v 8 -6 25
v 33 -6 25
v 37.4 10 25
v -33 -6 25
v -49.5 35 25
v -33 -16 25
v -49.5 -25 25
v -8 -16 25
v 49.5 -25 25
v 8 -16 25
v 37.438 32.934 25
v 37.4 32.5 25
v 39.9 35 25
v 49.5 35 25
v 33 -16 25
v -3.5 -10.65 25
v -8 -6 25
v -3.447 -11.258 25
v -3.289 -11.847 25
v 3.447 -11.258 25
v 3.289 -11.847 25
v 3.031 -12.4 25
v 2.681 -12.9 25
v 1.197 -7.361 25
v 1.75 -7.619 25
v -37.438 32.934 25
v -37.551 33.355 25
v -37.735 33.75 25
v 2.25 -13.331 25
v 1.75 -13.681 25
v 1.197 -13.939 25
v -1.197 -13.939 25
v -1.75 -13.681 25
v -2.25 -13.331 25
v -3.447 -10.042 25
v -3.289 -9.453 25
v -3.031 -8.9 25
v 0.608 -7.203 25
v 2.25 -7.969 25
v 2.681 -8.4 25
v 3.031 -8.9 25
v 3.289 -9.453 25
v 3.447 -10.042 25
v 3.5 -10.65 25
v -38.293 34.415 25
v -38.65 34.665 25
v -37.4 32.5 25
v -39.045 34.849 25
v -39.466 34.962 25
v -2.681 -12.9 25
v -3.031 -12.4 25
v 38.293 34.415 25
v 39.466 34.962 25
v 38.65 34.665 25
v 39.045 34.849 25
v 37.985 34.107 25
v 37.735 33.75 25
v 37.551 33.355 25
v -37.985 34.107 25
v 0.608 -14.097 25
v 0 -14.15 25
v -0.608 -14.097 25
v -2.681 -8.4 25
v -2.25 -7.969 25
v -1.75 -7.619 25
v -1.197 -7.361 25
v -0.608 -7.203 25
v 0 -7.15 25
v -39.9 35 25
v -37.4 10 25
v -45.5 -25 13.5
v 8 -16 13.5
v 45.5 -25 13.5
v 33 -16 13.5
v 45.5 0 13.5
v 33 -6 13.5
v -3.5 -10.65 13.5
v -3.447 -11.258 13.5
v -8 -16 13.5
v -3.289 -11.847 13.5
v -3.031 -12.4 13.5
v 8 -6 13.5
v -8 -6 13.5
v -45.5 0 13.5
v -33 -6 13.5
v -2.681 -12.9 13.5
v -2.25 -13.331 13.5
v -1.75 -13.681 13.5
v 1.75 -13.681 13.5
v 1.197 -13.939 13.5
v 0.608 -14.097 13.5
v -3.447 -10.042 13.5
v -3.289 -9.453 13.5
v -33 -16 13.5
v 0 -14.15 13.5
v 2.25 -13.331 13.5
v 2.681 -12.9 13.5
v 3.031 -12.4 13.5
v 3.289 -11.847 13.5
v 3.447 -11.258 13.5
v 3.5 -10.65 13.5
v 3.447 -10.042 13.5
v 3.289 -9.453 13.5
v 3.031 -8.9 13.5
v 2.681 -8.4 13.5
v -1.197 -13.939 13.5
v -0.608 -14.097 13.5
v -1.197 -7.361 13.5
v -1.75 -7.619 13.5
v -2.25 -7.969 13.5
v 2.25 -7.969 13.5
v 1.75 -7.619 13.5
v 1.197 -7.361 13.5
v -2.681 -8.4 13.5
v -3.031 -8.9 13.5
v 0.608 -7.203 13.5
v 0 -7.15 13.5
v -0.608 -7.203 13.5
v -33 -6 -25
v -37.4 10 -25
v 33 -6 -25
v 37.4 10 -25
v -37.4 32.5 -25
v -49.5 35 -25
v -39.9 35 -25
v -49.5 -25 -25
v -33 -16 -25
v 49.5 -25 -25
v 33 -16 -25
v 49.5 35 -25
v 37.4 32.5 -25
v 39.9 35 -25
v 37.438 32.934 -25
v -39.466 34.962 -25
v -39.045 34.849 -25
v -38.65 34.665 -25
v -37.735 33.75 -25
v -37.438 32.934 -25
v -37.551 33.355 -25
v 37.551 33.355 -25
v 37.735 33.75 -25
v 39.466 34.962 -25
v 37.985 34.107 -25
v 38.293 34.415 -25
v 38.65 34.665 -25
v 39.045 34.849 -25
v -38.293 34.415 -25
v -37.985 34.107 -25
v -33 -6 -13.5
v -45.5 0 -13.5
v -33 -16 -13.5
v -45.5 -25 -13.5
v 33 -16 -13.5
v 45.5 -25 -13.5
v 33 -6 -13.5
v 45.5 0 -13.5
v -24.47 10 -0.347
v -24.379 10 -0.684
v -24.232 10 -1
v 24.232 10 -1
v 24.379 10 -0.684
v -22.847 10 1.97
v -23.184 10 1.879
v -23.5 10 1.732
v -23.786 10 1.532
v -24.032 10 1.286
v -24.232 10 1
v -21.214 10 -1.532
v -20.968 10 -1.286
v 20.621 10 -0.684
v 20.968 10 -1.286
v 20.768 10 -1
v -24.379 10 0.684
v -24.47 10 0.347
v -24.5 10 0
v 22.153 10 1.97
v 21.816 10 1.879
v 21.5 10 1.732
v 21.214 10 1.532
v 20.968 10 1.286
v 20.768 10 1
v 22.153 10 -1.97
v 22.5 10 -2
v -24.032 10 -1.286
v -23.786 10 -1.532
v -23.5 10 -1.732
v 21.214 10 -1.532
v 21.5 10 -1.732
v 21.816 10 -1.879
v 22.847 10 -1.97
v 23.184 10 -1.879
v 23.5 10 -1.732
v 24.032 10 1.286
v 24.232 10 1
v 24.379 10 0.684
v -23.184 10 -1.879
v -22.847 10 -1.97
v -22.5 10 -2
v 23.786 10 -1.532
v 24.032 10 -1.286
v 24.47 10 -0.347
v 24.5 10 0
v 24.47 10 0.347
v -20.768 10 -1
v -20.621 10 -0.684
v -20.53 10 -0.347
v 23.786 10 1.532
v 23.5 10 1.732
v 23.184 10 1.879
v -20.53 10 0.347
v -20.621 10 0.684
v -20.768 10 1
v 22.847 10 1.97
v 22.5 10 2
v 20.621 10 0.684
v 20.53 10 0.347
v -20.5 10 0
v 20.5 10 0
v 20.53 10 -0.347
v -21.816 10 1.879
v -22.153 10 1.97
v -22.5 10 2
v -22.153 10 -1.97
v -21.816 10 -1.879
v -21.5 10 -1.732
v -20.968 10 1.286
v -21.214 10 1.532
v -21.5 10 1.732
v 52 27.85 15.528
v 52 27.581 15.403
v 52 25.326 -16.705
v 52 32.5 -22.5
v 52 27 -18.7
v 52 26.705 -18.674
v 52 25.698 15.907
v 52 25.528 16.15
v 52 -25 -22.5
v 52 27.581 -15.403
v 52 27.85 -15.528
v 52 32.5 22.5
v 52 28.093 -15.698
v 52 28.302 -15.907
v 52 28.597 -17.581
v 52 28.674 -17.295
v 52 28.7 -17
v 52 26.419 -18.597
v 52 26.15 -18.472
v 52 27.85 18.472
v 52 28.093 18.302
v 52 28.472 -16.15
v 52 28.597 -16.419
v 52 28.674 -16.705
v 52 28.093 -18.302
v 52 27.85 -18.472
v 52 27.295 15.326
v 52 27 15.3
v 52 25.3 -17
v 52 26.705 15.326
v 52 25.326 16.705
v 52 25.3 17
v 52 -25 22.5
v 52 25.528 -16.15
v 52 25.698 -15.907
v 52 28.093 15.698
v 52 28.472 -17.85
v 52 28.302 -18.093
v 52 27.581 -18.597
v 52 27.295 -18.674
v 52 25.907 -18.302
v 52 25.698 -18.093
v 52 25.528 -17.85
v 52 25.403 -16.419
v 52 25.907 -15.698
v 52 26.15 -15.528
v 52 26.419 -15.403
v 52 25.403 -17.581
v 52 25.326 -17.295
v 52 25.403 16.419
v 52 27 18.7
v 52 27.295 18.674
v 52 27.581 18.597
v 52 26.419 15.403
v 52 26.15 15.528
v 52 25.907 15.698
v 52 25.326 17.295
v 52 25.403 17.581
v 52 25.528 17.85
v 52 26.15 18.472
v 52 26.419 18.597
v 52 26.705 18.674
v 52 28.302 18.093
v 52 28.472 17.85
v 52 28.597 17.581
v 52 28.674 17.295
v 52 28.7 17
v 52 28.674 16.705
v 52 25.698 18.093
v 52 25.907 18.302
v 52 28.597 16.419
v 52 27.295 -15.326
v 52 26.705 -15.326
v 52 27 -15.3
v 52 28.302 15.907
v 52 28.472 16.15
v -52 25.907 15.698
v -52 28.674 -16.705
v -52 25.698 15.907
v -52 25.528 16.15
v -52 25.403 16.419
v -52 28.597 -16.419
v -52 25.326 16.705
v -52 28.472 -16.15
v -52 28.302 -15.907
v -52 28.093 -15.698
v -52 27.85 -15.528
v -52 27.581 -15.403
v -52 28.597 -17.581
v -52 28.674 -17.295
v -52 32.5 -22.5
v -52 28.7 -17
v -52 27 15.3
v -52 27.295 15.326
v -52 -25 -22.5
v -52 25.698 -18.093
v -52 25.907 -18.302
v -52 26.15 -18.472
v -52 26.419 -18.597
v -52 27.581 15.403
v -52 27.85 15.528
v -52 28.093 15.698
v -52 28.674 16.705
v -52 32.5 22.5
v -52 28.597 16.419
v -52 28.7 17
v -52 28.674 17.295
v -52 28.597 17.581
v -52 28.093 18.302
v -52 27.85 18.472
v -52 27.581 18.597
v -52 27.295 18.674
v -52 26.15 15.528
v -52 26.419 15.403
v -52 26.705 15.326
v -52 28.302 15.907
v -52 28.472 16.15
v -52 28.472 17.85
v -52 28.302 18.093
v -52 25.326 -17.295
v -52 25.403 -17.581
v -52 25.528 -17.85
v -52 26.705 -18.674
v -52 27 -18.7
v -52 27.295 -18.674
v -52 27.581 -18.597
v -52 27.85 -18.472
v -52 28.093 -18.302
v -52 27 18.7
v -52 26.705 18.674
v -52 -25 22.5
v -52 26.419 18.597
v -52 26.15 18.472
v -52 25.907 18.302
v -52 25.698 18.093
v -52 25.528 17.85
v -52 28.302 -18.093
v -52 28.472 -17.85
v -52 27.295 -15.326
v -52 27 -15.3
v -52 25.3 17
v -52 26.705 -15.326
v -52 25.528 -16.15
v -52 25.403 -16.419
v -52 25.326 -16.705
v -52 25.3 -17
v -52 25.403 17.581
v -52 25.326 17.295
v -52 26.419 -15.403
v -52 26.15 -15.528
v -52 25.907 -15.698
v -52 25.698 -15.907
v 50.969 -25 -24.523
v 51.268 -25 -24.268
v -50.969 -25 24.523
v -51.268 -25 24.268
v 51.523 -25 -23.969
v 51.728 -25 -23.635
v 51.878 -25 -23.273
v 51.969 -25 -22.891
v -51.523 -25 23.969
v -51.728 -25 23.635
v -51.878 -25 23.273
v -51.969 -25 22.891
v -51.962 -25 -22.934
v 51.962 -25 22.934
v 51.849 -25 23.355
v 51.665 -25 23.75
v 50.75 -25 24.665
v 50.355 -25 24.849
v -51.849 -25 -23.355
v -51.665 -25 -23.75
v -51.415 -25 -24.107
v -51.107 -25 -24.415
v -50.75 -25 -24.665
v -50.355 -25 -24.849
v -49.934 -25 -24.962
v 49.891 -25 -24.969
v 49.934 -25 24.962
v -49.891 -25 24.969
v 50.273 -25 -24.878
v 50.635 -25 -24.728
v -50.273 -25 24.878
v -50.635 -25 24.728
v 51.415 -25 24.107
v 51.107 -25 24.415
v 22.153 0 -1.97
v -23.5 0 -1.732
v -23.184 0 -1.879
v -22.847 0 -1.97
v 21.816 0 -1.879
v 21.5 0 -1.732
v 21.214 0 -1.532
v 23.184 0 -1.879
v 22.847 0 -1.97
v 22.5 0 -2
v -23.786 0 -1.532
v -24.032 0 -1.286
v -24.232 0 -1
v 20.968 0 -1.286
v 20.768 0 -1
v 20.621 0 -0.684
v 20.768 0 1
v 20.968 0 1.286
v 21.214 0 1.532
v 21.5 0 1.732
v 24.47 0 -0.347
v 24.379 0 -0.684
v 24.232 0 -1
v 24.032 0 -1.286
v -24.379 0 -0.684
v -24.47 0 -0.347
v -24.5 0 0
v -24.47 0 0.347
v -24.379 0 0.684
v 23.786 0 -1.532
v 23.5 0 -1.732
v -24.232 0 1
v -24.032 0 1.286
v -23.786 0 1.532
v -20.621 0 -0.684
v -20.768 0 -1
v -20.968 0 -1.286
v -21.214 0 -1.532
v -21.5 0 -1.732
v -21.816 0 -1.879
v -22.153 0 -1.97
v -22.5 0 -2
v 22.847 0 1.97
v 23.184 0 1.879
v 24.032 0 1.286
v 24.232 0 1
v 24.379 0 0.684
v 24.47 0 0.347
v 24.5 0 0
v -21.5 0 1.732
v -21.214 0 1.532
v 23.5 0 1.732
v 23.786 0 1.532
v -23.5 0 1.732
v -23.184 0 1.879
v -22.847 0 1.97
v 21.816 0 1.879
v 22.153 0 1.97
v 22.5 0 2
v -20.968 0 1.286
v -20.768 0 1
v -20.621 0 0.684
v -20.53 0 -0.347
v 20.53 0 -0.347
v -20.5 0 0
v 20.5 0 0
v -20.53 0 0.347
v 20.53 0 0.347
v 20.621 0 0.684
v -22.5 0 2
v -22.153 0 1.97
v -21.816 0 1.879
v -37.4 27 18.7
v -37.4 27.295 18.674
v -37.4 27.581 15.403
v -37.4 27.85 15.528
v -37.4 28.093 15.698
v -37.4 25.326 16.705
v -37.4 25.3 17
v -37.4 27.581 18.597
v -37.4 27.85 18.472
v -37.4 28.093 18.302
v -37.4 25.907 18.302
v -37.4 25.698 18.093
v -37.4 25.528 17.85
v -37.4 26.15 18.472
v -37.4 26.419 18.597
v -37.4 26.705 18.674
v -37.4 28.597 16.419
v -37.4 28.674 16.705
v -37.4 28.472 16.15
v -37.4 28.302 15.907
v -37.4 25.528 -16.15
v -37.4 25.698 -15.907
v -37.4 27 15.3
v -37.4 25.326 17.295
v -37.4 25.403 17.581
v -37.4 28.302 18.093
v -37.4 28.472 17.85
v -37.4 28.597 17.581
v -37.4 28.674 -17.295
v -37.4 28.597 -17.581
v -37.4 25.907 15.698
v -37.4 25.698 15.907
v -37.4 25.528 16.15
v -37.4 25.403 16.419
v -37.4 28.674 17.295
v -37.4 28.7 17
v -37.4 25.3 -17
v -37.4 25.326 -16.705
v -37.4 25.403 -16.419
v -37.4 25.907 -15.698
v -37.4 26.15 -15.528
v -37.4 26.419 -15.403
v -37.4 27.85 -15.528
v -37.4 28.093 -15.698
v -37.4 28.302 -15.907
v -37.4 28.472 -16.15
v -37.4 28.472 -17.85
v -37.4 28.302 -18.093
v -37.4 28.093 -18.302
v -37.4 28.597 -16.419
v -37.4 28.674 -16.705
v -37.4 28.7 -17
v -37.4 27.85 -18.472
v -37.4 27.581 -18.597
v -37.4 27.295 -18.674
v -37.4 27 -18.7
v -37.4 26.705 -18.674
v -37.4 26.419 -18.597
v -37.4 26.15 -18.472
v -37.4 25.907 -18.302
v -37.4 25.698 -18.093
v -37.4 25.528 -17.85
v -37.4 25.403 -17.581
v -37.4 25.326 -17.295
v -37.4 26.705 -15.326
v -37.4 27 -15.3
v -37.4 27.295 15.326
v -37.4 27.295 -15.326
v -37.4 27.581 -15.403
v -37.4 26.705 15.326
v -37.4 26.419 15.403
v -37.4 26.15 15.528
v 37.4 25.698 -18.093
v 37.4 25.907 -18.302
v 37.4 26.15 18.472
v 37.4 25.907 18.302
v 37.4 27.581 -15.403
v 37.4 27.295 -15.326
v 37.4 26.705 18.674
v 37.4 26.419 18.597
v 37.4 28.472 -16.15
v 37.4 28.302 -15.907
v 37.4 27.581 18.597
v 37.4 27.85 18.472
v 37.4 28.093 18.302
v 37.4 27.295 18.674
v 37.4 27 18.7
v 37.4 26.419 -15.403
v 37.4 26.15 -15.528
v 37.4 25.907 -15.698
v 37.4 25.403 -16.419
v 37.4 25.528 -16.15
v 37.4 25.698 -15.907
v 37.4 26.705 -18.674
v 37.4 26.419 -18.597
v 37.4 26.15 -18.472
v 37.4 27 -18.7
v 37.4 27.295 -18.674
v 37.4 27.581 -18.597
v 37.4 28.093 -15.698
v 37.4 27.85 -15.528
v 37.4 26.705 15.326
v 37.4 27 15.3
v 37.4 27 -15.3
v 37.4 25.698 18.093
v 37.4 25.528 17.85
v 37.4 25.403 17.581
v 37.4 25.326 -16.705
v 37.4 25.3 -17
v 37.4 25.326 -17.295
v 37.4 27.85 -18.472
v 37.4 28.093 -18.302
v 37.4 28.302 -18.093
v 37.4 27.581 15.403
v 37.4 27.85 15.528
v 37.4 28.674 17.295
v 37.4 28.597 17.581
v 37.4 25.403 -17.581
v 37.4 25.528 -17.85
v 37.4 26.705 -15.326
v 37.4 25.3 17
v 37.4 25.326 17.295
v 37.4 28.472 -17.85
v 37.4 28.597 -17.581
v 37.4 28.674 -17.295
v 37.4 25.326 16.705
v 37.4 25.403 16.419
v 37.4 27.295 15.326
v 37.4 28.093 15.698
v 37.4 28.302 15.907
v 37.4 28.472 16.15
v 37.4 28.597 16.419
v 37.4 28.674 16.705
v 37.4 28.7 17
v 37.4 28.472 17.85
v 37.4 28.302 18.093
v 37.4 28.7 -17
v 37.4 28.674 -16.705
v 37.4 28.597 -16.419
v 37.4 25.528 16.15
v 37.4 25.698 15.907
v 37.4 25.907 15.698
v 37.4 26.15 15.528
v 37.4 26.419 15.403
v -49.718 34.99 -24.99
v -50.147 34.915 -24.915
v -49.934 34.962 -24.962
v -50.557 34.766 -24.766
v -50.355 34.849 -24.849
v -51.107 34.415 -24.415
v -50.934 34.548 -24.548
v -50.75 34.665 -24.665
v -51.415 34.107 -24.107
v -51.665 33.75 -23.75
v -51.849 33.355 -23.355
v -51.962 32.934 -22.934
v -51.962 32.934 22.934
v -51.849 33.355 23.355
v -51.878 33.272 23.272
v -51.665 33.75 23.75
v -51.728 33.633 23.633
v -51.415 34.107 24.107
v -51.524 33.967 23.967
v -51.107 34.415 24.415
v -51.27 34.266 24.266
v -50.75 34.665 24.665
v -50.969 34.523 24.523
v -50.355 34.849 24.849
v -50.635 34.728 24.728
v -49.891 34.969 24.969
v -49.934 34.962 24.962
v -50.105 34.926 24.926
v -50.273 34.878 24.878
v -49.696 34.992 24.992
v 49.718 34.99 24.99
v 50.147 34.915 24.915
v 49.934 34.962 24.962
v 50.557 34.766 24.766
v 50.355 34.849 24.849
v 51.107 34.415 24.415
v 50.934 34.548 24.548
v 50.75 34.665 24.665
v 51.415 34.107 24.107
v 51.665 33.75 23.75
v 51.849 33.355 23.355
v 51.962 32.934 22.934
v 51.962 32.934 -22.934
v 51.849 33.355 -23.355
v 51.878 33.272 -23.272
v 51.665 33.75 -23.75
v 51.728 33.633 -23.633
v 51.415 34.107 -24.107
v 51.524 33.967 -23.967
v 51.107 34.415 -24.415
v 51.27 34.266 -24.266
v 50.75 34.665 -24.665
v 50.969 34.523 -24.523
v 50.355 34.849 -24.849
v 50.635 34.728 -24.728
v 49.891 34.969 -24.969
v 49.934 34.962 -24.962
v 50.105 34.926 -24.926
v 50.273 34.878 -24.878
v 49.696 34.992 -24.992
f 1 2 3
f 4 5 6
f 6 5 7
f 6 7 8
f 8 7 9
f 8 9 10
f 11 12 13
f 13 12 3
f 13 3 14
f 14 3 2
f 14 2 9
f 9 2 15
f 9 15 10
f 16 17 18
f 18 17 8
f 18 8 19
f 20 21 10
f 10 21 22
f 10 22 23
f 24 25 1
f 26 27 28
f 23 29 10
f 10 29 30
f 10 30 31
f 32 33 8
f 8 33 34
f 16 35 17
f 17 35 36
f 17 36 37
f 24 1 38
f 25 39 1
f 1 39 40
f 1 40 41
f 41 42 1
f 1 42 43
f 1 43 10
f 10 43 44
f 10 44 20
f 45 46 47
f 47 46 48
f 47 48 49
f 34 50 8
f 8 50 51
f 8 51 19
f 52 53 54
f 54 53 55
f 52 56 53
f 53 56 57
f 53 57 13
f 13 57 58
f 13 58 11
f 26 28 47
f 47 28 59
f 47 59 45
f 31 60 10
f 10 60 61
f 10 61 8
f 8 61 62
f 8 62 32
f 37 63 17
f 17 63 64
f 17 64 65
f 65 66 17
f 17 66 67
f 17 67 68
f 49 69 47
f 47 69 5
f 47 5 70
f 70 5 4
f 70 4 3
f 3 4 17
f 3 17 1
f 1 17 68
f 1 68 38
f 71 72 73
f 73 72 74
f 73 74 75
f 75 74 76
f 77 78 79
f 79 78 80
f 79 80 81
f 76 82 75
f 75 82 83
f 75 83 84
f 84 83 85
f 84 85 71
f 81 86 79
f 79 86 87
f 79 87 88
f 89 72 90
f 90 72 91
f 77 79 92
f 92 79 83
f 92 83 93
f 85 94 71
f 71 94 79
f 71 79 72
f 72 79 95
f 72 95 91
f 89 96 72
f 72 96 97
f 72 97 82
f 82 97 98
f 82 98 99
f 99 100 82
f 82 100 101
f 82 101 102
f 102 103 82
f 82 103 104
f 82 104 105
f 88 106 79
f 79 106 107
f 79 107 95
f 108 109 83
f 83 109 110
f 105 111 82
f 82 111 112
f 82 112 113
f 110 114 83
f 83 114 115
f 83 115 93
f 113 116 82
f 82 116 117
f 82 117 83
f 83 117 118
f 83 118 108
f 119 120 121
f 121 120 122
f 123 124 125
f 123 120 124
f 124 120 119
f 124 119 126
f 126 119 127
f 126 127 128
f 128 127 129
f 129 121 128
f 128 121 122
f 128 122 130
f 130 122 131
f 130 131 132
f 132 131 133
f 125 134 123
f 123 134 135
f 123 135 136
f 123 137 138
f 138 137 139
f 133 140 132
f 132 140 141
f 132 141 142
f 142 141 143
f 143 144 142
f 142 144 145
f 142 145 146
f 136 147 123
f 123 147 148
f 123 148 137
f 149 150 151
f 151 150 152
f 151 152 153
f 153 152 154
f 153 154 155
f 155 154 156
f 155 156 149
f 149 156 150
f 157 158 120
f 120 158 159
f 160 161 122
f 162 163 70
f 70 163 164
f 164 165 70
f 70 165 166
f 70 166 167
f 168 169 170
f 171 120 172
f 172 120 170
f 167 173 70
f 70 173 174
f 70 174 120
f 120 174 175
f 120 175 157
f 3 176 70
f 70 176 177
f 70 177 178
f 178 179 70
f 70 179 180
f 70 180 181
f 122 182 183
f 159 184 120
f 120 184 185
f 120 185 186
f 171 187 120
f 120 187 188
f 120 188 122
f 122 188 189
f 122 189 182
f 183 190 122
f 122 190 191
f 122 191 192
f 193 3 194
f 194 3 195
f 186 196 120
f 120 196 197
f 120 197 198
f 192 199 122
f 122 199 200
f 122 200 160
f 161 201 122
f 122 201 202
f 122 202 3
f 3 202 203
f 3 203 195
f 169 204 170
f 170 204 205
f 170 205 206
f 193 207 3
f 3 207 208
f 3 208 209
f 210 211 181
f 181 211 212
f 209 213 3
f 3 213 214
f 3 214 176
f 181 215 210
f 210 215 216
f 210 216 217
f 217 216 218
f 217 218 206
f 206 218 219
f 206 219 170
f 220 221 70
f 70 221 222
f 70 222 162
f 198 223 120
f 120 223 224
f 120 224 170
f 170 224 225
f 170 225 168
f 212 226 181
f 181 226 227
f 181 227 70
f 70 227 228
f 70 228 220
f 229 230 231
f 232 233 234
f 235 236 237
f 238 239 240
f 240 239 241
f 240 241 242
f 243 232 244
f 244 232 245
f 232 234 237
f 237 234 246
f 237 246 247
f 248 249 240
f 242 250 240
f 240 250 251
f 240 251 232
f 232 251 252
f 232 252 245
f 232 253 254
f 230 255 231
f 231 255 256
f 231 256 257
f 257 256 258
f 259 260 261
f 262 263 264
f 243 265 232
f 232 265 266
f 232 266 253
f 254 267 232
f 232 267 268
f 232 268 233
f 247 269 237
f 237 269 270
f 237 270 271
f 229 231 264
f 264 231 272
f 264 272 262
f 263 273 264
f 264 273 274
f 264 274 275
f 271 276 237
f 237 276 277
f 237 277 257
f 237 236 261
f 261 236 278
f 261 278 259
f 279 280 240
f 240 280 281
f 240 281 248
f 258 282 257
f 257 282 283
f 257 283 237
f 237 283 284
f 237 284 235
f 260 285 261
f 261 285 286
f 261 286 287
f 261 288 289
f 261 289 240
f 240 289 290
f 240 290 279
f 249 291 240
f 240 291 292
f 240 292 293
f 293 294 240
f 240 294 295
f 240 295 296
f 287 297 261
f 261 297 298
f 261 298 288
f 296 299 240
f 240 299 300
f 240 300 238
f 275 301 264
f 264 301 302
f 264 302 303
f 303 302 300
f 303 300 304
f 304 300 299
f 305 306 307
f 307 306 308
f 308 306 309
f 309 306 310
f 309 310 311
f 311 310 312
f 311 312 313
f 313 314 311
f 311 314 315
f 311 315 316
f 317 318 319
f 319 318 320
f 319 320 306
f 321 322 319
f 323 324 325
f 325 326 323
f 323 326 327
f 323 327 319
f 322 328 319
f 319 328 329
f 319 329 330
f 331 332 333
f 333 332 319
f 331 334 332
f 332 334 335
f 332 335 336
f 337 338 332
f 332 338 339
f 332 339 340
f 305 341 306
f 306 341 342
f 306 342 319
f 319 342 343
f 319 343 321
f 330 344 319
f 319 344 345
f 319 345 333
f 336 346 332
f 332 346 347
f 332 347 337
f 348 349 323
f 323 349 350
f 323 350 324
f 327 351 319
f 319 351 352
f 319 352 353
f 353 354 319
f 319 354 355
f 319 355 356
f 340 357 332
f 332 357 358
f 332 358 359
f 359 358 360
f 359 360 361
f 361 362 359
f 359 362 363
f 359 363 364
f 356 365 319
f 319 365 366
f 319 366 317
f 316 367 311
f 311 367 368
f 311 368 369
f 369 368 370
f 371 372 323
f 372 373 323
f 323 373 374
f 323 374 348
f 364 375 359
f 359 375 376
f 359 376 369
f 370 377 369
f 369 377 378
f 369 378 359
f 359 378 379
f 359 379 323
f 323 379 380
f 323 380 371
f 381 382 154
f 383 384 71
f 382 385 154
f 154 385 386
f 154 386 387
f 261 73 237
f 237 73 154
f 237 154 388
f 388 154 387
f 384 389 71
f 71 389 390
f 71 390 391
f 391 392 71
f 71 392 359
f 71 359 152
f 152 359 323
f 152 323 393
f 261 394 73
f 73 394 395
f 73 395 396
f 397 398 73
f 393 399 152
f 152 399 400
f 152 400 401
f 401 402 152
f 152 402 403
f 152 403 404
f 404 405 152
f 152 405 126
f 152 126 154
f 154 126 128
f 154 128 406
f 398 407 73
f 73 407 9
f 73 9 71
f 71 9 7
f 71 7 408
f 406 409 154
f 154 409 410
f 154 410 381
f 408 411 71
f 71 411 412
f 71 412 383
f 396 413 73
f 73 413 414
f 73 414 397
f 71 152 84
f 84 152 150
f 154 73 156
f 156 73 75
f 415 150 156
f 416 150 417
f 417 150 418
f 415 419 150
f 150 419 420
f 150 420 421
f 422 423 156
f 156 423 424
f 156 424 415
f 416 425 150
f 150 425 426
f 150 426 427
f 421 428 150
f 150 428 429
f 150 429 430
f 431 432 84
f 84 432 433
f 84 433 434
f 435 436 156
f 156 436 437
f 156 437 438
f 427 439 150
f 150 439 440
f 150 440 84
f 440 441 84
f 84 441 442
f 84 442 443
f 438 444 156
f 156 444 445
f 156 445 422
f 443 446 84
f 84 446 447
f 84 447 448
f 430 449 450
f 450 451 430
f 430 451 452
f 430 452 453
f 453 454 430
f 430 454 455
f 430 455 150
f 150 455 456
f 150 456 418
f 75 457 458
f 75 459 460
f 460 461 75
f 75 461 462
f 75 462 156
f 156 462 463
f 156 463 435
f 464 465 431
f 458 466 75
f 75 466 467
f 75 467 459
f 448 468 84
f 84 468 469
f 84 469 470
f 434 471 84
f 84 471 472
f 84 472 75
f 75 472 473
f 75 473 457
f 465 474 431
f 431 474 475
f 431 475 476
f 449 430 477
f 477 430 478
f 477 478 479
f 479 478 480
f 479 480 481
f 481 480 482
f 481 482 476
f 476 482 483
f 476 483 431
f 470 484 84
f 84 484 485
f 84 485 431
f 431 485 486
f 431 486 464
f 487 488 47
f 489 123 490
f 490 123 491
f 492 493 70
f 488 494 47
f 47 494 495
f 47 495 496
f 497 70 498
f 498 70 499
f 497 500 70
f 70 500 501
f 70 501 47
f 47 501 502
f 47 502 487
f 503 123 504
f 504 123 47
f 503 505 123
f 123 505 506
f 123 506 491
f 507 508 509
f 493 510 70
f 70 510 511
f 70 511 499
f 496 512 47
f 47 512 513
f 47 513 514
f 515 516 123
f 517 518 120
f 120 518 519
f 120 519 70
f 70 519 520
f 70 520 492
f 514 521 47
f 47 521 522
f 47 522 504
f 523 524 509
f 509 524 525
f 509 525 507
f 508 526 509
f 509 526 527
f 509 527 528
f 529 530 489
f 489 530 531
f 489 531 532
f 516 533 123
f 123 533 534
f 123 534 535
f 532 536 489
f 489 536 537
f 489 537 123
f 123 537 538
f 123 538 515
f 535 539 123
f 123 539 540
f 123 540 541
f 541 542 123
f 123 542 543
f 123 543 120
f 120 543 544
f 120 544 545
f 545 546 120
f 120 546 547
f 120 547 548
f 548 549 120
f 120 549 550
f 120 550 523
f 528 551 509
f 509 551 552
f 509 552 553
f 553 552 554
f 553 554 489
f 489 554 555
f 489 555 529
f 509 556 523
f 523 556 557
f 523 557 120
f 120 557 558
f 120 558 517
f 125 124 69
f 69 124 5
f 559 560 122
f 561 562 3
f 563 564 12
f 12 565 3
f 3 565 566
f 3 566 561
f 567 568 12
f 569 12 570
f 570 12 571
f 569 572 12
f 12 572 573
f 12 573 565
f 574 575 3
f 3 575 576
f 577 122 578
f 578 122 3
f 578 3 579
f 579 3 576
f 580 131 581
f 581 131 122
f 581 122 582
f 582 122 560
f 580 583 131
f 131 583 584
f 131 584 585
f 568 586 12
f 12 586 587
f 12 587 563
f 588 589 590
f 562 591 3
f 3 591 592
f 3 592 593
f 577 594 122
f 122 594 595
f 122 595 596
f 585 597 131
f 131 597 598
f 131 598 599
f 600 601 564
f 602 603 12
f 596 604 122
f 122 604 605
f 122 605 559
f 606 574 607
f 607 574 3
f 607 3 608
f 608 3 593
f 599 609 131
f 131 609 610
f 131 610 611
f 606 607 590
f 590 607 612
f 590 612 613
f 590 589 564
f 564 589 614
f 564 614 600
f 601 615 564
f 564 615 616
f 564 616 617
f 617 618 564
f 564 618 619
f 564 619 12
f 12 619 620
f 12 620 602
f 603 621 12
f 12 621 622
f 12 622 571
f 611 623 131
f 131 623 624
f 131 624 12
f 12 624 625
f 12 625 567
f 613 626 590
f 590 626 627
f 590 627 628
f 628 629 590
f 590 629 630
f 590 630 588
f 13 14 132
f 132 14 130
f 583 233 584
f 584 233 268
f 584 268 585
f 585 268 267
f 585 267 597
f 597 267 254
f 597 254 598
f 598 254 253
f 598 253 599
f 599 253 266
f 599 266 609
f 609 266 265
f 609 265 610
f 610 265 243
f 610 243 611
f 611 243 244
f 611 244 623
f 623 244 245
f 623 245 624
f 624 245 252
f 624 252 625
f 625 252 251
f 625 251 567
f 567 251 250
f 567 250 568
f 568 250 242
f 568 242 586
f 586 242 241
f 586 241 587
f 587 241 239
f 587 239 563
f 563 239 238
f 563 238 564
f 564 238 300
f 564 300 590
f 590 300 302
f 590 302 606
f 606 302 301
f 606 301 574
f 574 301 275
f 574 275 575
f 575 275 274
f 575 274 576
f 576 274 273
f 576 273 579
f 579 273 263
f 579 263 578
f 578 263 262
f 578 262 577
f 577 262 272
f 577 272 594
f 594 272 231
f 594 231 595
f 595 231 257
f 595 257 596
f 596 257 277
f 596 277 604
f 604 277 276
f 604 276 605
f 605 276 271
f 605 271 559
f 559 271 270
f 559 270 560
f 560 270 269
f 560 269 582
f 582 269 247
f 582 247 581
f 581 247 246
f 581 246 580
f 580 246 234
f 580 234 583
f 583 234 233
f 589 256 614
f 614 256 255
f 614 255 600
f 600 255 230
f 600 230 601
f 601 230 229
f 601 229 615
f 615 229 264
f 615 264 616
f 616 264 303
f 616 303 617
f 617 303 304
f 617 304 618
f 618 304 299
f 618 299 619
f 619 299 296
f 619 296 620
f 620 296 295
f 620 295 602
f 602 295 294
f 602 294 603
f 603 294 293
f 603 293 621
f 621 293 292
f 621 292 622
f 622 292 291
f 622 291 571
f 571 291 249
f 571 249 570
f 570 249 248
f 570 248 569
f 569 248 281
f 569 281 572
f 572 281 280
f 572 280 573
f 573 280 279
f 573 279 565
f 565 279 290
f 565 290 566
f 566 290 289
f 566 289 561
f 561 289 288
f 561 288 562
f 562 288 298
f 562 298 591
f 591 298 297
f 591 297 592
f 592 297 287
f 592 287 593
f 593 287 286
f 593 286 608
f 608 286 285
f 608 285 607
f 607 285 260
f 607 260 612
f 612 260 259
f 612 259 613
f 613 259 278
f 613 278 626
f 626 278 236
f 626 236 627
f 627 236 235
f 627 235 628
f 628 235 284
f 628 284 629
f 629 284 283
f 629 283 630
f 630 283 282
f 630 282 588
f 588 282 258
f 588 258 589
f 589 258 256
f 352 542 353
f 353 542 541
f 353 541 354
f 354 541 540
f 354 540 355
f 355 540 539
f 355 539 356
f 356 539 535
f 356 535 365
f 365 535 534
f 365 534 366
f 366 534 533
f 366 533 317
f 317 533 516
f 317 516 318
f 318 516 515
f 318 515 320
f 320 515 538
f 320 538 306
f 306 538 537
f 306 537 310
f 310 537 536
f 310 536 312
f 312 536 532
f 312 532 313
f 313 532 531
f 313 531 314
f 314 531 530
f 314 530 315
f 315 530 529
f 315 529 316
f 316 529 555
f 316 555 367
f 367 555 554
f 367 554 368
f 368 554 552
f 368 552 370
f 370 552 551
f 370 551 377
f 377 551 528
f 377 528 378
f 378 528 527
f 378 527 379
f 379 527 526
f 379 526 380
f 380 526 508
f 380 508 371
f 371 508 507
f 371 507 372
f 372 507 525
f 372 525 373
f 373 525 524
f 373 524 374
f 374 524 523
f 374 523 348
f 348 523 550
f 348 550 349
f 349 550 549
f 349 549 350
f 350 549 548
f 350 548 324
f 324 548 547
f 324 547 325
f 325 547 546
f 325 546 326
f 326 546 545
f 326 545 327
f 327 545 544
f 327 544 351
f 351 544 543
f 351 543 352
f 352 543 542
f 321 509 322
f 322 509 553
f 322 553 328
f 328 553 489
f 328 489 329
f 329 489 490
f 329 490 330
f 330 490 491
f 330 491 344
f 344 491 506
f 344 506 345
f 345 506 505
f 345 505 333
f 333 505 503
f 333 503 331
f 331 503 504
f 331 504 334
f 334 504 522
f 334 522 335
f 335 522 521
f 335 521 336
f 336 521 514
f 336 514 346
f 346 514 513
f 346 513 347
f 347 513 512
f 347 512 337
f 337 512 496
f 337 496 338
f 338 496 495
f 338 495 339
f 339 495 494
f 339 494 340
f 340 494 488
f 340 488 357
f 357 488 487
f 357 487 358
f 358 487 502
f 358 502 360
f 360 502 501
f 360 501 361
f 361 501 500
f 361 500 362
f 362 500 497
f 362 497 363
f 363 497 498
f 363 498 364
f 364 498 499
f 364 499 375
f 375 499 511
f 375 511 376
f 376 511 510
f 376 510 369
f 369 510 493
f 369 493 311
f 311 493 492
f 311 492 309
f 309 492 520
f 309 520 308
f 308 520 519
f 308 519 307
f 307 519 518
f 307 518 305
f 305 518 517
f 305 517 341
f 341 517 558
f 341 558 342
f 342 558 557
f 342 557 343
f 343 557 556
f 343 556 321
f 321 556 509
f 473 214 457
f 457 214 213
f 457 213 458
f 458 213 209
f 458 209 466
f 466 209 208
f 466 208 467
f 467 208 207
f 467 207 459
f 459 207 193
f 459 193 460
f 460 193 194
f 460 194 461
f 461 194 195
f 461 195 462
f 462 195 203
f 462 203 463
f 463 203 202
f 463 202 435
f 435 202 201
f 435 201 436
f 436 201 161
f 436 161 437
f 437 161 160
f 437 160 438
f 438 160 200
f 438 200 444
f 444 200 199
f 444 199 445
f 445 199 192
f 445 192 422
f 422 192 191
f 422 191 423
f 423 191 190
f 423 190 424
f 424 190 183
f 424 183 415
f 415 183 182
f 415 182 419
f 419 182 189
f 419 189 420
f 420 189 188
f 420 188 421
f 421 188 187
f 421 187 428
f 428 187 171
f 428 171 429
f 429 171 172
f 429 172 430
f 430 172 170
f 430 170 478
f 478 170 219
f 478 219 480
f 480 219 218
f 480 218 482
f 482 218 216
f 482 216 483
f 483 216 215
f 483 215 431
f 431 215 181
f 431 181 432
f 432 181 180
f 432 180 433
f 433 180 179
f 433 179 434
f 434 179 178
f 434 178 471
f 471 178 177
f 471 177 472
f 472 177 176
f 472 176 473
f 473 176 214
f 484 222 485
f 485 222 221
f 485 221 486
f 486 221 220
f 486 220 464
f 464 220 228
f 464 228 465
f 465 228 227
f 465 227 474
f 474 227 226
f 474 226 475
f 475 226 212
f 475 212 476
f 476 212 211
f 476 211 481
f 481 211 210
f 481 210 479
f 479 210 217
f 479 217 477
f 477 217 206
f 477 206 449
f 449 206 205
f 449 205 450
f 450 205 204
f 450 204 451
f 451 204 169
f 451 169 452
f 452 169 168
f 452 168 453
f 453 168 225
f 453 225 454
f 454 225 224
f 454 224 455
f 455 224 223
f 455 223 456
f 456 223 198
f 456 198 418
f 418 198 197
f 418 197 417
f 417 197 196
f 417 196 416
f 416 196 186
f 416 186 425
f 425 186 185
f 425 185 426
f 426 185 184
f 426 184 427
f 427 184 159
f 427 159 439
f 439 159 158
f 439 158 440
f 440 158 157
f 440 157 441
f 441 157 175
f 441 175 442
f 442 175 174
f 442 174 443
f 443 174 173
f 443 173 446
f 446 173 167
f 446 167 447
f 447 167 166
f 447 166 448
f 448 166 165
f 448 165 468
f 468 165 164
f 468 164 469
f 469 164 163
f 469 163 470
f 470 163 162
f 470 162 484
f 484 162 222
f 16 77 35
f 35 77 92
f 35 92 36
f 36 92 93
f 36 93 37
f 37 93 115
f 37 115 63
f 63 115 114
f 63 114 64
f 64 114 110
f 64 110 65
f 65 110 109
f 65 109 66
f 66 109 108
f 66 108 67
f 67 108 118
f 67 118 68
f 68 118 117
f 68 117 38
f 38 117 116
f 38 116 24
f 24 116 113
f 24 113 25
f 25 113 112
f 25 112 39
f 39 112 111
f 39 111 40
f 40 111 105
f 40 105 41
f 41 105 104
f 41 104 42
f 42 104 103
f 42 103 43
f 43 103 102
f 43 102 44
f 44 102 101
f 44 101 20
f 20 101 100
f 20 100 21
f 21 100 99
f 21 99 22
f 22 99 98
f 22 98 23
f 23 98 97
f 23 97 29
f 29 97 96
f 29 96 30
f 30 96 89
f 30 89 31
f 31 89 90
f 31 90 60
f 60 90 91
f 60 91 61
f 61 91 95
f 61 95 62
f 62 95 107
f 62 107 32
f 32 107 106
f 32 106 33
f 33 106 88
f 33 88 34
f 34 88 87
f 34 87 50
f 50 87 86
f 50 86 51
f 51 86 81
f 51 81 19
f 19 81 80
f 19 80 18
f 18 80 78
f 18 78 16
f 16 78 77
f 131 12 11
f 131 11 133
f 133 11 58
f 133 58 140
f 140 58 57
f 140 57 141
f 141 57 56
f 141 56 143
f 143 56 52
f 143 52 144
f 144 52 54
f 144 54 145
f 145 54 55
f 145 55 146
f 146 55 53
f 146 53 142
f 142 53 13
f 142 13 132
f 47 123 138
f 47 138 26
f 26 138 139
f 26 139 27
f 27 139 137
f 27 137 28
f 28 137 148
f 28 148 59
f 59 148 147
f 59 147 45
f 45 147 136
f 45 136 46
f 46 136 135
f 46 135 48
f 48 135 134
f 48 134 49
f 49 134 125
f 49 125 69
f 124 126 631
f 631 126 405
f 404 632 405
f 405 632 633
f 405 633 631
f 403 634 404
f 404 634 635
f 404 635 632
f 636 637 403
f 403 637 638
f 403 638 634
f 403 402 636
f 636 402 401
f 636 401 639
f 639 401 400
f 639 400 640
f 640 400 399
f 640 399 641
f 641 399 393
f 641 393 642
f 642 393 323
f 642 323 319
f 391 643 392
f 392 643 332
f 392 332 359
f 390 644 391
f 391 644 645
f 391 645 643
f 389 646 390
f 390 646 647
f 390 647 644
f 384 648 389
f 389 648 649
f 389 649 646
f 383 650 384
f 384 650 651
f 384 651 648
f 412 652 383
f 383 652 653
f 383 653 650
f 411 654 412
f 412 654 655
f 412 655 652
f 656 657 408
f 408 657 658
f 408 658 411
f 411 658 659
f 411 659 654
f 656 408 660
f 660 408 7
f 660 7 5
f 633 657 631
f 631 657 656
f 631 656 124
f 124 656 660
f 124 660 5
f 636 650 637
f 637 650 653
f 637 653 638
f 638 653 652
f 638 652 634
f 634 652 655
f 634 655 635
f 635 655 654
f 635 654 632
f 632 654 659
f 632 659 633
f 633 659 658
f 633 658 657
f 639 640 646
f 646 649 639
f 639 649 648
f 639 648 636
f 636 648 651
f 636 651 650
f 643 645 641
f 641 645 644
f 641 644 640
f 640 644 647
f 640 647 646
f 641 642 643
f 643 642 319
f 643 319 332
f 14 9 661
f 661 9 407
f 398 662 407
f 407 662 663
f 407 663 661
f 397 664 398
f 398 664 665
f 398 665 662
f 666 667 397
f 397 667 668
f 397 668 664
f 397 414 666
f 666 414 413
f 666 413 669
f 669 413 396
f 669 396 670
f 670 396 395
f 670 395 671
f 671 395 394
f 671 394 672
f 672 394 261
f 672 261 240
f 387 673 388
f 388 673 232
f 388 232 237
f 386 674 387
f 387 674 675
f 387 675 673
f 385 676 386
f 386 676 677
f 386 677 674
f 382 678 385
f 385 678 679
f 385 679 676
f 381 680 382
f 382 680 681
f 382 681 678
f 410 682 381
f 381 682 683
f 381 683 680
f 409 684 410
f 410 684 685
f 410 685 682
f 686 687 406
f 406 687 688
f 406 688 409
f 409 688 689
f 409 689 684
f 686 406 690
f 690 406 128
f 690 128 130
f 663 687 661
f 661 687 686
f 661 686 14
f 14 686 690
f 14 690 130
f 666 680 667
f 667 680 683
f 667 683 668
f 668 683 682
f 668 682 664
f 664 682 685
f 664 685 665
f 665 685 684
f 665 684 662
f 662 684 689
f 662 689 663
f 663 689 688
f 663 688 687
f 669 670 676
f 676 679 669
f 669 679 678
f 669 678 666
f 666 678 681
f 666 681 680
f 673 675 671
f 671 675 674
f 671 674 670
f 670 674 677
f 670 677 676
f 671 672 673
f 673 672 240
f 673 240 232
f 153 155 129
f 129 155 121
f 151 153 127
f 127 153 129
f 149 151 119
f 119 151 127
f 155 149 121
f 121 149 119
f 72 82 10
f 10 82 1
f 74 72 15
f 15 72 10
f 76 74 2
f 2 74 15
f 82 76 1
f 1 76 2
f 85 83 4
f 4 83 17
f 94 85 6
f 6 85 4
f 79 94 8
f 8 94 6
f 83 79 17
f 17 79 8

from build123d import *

# Parameters (mm, degrees)
SKETCH1_W                      = 104
SKETCH1_H                      = 50
BOSS_EXTRUDE1_DEPTH            = 10
SKETCH2_W                      = 104
SKETCH2_H                      = 50
BOSS_EXTRUDE2_DEPTH            = 25
SKETCH3_W                      = 14.6
SKETCH3_H                      = 50
BOSS_EXTRUDE3_DEPTH            = 25
CUT_EXTRUDE1_DEPTH             = 113.543324991
CUT_EXTRUDE1_DEPTH_BACK        = 113.543324991
SKETCH4_R                      = 1.7
CUT_EXTRUDE2_DEPTH             = 68.483331275
CUT_EXTRUDE2_DEPTH_BACK        = 68.483331275
SKETCH5_R                      = 2
CUT_EXTRUDE4_REACH             = 82.181
SKETCH8_R                      = 3.5
CUT_EXTRUDE4_DIRECTION_2_DEPTH = 81.181045142
FILLET1_R                      = 2.5
CUT_EXTRUDE6_REACH             = 82.181
CUT_EXTRUDE6_DIRECTION_2_DEPTH = 81.181045142
CUT_EXTRUDE7_REACH             = 82.181
SKETCH10_W                     = 25
SKETCH10_H                     = 10
CUT_EXTRUDE7_DIRECTION_2_DEPTH = 81.181045142


with BuildPart() as part:
    # Sketch1 → Boss-Extrude1 (new body)
    with BuildSketch(Plane(origin=(0, 0, 0), x_dir=(1, 0, 0), z_dir=(0, 1, 0))):
        Rectangle(SKETCH1_W, SKETCH1_H)
    extrude(amount=BOSS_EXTRUDE1_DEPTH)

    # Sketch2 → Boss-Extrude2 (add)
    with BuildSketch(Plane.XZ):
        Rectangle(SKETCH2_W, SKETCH2_H)
        Polygon((-45.5, 13.5), (-45.5, 0), (-45.5, -13.5), (0, -13.5), (45.5, -13.5), (45.5, 0), (45.5, 13.5), (0, 13.5), align=None, mode=Mode.SUBTRACT)
    extrude(amount=BOSS_EXTRUDE2_DEPTH)

    # Sketch3 → Boss-Extrude3 (add)
    with BuildSketch(Plane(origin=(0, 10, 0), x_dir=(1, 0, 0), z_dir=(0, 1, 0))):
        with Locations((-44.7, 0)):
            Rectangle(SKETCH3_W, SKETCH3_H)
        with Locations((44.7, 0)):
            Rectangle(SKETCH3_W, SKETCH3_H)
    extrude(amount=BOSS_EXTRUDE3_DEPTH)

    # Sketch4 → Cut-Extrude1 (cut, two sides: drawn at the far end of the back side and taken through both)
    with BuildSketch(Plane(origin=(52, 0, 0), x_dir=(0, 0, -1), z_dir=(1, 0, 0)).offset(-CUT_EXTRUDE1_DEPTH_BACK)):
        with Locations((17, 27)):
            Circle(SKETCH4_R)
        with Locations((-17, 27)):
            Circle(SKETCH4_R)
    extrude(amount=CUT_EXTRUDE1_DEPTH + CUT_EXTRUDE1_DEPTH_BACK, mode=Mode.SUBTRACT)

    # Sketch5 → Cut-Extrude2 (cut, two sides: drawn at the far end of the back side and taken through both)
    with BuildSketch(Plane(origin=(0, 10, 0), x_dir=(1, 0, 0), z_dir=(0, 1, 0)).offset(-CUT_EXTRUDE2_DEPTH_BACK)):
        with Locations(Location((-22.5, 0, 0), (0, 0, 270))):
            Circle(SKETCH5_R)
        with Locations(Location((22.5, 0, 0), (0, 0, 270))):
            Circle(SKETCH5_R)
    extrude(amount=CUT_EXTRUDE2_DEPTH + CUT_EXTRUDE2_DEPTH_BACK, mode=Mode.SUBTRACT)

    # Sketch8 → Cut-Extrude4 (cut, up to next)
    with BuildSketch(Plane.XY.offset(25), mode=Mode.PRIVATE) as cut_extrude4_sk1:
        with Locations(Location((0, -10.65, 0), (0, 0, 180))):
            Circle(SKETCH8_R)
    cut_extrude4_tool1 = extrude(cut_extrude4_sk1.sketch, amount=-CUT_EXTRUDE4_REACH, mode=Mode.PRIVATE) & part.part
    add(cut_extrude4_tool1.solids().sort_by_distance((0, -10.65, 25))[0], mode=Mode.SUBTRACT)

    # Sketch8 → Cut-Extrude4 direction 2 (cut)
    with BuildSketch(Plane.XY.offset(25)):
        with Locations(Location((0, -10.65, 0), (0, 0, 180))):
            Circle(SKETCH8_R)
    extrude(amount=CUT_EXTRUDE4_DIRECTION_2_DEPTH, mode=Mode.SUBTRACT)

    # Fillet1
    fillet1_edges = [part.edges().sort_by_distance(p)[0] for p in [
        (-52, 35, 0),
        (-37.4, 35, 0),
        (37.4, 35, 0),
        (52, 35, 0),
        (-52, 5, 25),
        (-52, 5, -25),
        (52, 5, -25),
        (52, 5, 25),
    ]]
    fillet(fillet1_edges, radius=FILLET1_R)

    # Sketch9 → Cut-Extrude6 (cut, up to next)
    with BuildSketch(Plane(origin=(0, 0, -25), x_dir=(-1, 0, 0), z_dir=(0, 0, -1)), mode=Mode.PRIVATE) as cut_extrude6_sk1:
        Polygon((-33, -6), (-33, -16), (0, -16), (33, -16), (33, -6), (0, -6), align=None)
    cut_extrude6_tool1 = extrude(cut_extrude6_sk1.sketch, amount=-CUT_EXTRUDE6_REACH, mode=Mode.PRIVATE) & part.part
    add(cut_extrude6_tool1.solids().sort_by_distance((0, -11, -25))[0], mode=Mode.SUBTRACT)

    # Sketch9 → Cut-Extrude6 direction 2 (cut)
    with BuildSketch(Plane(origin=(0, 0, -25), x_dir=(-1, 0, 0), z_dir=(0, 0, -1))):
        Polygon((-33, -6), (-33, -16), (0, -16), (33, -16), (33, -6), (0, -6), align=None)
    extrude(amount=CUT_EXTRUDE6_DIRECTION_2_DEPTH, mode=Mode.SUBTRACT)

    # Sketch10 → Cut-Extrude7 (cut, up to next)
    with BuildSketch(Plane.XY.offset(25), mode=Mode.PRIVATE) as cut_extrude7_sk1:
        with Locations((-20.5, -11)):
            Rectangle(SKETCH10_W, SKETCH10_H)
    cut_extrude7_tool1 = extrude(cut_extrude7_sk1.sketch, amount=-CUT_EXTRUDE7_REACH, mode=Mode.PRIVATE) & part.part
    # Sketch10 → Cut-Extrude7 (cut, up to next)
    with BuildSketch(Plane.XY.offset(25), mode=Mode.PRIVATE) as cut_extrude7_sk2:
        with Locations((20.5, -11)):
            Rectangle(SKETCH10_W, SKETCH10_H)
    cut_extrude7_tool2 = extrude(cut_extrude7_sk2.sketch, amount=-CUT_EXTRUDE7_REACH, mode=Mode.PRIVATE) & part.part
    add(cut_extrude7_tool1.solids().sort_by_distance((-20.5, -11, 25))[0], mode=Mode.SUBTRACT)
    add(cut_extrude7_tool2.solids().sort_by_distance((20.5, -11, 25))[0], mode=Mode.SUBTRACT)

    # Sketch10 → Cut-Extrude7 direction 2 (cut)
    with BuildSketch(Plane.XY.offset(25)):
        with Locations((-20.5, -11)):
            Rectangle(SKETCH10_W, SKETCH10_H)
        with Locations((20.5, -11)):
            Rectangle(SKETCH10_W, SKETCH10_H)
    extrude(amount=CUT_EXTRUDE7_DIRECTION_2_DEPTH, mode=Mode.SUBTRACT)


solid = part.part
